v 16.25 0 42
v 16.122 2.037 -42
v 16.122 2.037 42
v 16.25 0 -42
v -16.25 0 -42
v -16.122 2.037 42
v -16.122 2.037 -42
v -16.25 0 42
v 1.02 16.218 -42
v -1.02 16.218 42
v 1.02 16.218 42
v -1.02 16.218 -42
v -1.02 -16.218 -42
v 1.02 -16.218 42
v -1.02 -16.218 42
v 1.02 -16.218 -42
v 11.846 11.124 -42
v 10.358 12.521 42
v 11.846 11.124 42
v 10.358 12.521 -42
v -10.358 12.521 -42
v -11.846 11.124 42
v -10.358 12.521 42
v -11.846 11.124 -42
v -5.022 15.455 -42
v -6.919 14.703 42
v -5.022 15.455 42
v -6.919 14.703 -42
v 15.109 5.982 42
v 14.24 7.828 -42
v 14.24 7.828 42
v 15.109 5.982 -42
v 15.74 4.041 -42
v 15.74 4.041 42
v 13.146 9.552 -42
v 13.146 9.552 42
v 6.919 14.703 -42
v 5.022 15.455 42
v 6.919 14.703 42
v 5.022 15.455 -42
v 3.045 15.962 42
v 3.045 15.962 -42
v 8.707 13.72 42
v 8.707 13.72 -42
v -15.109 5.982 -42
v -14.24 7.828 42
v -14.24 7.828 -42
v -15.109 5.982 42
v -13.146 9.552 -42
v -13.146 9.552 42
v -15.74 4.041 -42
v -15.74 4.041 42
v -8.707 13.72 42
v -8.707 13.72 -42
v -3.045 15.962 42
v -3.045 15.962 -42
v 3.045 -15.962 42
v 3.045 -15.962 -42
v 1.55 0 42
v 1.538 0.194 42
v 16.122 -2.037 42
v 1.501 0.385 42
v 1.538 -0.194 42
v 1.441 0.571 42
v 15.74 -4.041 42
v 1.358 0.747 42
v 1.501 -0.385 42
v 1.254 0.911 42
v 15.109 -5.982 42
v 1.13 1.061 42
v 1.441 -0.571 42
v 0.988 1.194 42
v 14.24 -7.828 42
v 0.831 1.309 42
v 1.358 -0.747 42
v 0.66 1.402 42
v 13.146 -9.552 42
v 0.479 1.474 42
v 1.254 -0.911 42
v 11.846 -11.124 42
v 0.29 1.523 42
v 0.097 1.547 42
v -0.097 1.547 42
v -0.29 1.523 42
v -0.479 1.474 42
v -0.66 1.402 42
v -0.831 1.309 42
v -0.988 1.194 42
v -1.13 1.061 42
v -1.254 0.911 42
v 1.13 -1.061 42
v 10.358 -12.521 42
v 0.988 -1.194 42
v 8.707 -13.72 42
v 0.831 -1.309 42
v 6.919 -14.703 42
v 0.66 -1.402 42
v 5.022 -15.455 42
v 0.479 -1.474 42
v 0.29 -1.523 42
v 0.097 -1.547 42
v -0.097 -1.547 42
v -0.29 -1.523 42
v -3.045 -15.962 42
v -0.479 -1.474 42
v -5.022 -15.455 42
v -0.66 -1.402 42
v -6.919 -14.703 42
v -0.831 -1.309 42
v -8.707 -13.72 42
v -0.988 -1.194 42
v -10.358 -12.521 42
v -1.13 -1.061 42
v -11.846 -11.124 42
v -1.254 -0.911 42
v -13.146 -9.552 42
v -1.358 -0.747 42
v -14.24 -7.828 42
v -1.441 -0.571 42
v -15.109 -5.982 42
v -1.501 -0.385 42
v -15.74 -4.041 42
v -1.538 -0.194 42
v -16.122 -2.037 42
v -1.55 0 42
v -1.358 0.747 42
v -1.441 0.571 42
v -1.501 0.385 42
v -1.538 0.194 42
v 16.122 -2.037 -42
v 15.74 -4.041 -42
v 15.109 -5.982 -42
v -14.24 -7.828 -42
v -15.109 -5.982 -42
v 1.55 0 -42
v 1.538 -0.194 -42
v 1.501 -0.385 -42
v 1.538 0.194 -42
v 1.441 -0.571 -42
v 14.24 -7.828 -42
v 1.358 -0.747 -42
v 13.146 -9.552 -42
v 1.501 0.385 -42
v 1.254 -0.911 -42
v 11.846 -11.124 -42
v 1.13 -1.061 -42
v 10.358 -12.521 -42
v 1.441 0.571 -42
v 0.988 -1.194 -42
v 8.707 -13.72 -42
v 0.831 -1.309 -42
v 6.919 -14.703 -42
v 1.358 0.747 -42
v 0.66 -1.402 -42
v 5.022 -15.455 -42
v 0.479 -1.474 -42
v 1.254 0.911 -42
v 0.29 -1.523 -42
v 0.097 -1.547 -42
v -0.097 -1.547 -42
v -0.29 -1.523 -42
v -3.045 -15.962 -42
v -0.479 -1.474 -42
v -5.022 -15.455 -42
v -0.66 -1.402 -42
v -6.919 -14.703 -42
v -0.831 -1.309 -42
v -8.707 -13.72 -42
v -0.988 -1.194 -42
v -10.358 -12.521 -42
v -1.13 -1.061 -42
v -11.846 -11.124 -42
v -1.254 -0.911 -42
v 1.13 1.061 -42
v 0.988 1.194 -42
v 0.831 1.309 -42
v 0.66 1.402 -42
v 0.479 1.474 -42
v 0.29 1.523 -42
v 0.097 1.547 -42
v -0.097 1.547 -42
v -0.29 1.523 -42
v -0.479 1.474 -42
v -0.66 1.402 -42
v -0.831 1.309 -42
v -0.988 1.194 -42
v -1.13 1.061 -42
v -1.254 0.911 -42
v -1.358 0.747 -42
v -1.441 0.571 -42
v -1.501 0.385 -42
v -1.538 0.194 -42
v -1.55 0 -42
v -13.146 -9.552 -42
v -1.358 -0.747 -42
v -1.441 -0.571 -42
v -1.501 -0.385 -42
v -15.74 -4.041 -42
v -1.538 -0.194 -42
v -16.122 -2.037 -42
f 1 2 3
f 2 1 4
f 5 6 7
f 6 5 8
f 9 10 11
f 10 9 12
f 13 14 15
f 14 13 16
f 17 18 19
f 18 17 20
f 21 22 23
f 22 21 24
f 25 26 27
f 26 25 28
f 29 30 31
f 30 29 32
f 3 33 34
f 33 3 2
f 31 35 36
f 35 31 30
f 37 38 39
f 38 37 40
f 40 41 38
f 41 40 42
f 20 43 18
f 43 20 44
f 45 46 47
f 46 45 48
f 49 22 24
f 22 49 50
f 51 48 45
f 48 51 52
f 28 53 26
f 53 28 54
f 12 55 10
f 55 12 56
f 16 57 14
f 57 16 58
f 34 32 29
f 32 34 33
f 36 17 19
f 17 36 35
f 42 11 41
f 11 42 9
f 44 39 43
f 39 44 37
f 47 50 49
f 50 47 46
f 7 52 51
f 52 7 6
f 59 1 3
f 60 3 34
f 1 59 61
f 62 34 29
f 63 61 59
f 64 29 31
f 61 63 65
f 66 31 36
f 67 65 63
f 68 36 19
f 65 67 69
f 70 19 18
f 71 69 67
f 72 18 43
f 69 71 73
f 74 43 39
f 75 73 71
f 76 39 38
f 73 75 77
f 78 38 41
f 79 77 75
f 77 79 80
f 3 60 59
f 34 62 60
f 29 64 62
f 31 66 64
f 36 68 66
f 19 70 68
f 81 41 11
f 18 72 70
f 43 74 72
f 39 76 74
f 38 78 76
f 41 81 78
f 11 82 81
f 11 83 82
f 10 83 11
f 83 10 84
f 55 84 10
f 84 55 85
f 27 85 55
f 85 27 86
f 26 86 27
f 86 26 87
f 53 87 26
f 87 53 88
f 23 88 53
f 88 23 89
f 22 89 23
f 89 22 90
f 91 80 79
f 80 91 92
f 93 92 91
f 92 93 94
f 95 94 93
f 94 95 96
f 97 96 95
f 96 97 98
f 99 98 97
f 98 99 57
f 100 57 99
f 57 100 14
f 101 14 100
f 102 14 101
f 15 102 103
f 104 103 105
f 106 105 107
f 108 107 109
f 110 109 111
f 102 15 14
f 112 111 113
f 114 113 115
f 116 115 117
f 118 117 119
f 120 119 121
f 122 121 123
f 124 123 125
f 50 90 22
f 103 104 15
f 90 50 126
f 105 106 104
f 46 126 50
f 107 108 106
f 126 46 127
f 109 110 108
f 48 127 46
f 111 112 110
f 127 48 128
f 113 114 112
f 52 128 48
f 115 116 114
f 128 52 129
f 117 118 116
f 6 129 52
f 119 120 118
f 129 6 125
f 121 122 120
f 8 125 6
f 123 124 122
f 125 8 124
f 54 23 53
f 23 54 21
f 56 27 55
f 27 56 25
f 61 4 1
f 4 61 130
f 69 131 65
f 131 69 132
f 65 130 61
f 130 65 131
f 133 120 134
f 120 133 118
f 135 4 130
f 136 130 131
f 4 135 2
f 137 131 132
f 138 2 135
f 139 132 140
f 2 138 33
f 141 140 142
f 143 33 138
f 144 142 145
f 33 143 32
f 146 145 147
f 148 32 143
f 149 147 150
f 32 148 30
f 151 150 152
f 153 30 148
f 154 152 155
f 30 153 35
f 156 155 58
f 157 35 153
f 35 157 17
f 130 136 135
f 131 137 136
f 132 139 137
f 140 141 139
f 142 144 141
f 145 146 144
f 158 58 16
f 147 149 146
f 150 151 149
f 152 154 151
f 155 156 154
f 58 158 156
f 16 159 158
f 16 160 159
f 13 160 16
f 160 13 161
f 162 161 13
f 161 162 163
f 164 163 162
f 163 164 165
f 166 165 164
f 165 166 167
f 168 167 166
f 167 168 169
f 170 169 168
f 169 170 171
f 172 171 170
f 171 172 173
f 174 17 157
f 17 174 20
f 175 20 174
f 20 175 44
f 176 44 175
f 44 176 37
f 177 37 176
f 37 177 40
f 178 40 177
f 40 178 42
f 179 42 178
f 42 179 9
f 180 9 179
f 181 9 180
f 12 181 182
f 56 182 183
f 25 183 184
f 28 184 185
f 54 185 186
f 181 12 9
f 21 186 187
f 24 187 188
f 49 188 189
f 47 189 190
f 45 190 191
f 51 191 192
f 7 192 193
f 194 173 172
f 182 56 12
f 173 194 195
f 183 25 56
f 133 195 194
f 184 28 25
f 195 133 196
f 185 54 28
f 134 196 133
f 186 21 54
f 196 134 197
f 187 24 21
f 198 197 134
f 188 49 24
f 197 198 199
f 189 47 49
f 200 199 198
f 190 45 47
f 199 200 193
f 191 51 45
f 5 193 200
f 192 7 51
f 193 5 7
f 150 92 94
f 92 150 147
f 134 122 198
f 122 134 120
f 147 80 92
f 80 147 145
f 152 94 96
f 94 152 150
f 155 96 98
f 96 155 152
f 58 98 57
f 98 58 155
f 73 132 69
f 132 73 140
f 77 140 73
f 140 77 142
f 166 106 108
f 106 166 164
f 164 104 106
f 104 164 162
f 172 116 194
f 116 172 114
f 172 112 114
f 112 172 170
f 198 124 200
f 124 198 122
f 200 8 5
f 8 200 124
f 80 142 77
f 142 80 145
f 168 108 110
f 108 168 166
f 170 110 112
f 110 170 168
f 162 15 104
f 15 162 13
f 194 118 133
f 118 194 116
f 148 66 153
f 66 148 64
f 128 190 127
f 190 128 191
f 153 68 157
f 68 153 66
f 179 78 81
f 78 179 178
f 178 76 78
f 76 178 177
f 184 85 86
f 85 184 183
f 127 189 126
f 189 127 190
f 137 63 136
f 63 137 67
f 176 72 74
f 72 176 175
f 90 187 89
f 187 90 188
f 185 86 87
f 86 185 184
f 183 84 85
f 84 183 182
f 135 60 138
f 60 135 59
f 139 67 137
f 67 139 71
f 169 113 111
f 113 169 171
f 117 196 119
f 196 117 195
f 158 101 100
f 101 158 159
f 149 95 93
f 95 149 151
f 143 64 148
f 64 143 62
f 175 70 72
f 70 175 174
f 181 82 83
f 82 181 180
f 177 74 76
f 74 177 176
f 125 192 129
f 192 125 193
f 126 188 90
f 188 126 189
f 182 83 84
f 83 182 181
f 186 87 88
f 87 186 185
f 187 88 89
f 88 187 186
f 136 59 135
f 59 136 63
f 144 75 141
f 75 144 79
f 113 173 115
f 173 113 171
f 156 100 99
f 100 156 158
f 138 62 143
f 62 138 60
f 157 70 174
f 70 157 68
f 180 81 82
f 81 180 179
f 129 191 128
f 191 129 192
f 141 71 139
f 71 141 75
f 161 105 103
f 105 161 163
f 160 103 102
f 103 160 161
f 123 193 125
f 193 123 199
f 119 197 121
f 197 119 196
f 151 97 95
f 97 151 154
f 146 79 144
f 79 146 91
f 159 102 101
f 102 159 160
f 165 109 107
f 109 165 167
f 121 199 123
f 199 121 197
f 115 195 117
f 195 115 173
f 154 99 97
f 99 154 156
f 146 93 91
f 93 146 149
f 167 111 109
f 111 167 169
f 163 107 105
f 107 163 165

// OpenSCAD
$fn = 50;


difference() {
	union() {
		translate(v = [0, 0, -42.0000000000]) {
			cylinder(h = 84, r = 16.2500000000);
		}
	}
	union() {
		translate(v = [0, 0, -100.0000000000]) {
			cylinder(h = 200, r = 1.5500000000);
		}
	}
}
